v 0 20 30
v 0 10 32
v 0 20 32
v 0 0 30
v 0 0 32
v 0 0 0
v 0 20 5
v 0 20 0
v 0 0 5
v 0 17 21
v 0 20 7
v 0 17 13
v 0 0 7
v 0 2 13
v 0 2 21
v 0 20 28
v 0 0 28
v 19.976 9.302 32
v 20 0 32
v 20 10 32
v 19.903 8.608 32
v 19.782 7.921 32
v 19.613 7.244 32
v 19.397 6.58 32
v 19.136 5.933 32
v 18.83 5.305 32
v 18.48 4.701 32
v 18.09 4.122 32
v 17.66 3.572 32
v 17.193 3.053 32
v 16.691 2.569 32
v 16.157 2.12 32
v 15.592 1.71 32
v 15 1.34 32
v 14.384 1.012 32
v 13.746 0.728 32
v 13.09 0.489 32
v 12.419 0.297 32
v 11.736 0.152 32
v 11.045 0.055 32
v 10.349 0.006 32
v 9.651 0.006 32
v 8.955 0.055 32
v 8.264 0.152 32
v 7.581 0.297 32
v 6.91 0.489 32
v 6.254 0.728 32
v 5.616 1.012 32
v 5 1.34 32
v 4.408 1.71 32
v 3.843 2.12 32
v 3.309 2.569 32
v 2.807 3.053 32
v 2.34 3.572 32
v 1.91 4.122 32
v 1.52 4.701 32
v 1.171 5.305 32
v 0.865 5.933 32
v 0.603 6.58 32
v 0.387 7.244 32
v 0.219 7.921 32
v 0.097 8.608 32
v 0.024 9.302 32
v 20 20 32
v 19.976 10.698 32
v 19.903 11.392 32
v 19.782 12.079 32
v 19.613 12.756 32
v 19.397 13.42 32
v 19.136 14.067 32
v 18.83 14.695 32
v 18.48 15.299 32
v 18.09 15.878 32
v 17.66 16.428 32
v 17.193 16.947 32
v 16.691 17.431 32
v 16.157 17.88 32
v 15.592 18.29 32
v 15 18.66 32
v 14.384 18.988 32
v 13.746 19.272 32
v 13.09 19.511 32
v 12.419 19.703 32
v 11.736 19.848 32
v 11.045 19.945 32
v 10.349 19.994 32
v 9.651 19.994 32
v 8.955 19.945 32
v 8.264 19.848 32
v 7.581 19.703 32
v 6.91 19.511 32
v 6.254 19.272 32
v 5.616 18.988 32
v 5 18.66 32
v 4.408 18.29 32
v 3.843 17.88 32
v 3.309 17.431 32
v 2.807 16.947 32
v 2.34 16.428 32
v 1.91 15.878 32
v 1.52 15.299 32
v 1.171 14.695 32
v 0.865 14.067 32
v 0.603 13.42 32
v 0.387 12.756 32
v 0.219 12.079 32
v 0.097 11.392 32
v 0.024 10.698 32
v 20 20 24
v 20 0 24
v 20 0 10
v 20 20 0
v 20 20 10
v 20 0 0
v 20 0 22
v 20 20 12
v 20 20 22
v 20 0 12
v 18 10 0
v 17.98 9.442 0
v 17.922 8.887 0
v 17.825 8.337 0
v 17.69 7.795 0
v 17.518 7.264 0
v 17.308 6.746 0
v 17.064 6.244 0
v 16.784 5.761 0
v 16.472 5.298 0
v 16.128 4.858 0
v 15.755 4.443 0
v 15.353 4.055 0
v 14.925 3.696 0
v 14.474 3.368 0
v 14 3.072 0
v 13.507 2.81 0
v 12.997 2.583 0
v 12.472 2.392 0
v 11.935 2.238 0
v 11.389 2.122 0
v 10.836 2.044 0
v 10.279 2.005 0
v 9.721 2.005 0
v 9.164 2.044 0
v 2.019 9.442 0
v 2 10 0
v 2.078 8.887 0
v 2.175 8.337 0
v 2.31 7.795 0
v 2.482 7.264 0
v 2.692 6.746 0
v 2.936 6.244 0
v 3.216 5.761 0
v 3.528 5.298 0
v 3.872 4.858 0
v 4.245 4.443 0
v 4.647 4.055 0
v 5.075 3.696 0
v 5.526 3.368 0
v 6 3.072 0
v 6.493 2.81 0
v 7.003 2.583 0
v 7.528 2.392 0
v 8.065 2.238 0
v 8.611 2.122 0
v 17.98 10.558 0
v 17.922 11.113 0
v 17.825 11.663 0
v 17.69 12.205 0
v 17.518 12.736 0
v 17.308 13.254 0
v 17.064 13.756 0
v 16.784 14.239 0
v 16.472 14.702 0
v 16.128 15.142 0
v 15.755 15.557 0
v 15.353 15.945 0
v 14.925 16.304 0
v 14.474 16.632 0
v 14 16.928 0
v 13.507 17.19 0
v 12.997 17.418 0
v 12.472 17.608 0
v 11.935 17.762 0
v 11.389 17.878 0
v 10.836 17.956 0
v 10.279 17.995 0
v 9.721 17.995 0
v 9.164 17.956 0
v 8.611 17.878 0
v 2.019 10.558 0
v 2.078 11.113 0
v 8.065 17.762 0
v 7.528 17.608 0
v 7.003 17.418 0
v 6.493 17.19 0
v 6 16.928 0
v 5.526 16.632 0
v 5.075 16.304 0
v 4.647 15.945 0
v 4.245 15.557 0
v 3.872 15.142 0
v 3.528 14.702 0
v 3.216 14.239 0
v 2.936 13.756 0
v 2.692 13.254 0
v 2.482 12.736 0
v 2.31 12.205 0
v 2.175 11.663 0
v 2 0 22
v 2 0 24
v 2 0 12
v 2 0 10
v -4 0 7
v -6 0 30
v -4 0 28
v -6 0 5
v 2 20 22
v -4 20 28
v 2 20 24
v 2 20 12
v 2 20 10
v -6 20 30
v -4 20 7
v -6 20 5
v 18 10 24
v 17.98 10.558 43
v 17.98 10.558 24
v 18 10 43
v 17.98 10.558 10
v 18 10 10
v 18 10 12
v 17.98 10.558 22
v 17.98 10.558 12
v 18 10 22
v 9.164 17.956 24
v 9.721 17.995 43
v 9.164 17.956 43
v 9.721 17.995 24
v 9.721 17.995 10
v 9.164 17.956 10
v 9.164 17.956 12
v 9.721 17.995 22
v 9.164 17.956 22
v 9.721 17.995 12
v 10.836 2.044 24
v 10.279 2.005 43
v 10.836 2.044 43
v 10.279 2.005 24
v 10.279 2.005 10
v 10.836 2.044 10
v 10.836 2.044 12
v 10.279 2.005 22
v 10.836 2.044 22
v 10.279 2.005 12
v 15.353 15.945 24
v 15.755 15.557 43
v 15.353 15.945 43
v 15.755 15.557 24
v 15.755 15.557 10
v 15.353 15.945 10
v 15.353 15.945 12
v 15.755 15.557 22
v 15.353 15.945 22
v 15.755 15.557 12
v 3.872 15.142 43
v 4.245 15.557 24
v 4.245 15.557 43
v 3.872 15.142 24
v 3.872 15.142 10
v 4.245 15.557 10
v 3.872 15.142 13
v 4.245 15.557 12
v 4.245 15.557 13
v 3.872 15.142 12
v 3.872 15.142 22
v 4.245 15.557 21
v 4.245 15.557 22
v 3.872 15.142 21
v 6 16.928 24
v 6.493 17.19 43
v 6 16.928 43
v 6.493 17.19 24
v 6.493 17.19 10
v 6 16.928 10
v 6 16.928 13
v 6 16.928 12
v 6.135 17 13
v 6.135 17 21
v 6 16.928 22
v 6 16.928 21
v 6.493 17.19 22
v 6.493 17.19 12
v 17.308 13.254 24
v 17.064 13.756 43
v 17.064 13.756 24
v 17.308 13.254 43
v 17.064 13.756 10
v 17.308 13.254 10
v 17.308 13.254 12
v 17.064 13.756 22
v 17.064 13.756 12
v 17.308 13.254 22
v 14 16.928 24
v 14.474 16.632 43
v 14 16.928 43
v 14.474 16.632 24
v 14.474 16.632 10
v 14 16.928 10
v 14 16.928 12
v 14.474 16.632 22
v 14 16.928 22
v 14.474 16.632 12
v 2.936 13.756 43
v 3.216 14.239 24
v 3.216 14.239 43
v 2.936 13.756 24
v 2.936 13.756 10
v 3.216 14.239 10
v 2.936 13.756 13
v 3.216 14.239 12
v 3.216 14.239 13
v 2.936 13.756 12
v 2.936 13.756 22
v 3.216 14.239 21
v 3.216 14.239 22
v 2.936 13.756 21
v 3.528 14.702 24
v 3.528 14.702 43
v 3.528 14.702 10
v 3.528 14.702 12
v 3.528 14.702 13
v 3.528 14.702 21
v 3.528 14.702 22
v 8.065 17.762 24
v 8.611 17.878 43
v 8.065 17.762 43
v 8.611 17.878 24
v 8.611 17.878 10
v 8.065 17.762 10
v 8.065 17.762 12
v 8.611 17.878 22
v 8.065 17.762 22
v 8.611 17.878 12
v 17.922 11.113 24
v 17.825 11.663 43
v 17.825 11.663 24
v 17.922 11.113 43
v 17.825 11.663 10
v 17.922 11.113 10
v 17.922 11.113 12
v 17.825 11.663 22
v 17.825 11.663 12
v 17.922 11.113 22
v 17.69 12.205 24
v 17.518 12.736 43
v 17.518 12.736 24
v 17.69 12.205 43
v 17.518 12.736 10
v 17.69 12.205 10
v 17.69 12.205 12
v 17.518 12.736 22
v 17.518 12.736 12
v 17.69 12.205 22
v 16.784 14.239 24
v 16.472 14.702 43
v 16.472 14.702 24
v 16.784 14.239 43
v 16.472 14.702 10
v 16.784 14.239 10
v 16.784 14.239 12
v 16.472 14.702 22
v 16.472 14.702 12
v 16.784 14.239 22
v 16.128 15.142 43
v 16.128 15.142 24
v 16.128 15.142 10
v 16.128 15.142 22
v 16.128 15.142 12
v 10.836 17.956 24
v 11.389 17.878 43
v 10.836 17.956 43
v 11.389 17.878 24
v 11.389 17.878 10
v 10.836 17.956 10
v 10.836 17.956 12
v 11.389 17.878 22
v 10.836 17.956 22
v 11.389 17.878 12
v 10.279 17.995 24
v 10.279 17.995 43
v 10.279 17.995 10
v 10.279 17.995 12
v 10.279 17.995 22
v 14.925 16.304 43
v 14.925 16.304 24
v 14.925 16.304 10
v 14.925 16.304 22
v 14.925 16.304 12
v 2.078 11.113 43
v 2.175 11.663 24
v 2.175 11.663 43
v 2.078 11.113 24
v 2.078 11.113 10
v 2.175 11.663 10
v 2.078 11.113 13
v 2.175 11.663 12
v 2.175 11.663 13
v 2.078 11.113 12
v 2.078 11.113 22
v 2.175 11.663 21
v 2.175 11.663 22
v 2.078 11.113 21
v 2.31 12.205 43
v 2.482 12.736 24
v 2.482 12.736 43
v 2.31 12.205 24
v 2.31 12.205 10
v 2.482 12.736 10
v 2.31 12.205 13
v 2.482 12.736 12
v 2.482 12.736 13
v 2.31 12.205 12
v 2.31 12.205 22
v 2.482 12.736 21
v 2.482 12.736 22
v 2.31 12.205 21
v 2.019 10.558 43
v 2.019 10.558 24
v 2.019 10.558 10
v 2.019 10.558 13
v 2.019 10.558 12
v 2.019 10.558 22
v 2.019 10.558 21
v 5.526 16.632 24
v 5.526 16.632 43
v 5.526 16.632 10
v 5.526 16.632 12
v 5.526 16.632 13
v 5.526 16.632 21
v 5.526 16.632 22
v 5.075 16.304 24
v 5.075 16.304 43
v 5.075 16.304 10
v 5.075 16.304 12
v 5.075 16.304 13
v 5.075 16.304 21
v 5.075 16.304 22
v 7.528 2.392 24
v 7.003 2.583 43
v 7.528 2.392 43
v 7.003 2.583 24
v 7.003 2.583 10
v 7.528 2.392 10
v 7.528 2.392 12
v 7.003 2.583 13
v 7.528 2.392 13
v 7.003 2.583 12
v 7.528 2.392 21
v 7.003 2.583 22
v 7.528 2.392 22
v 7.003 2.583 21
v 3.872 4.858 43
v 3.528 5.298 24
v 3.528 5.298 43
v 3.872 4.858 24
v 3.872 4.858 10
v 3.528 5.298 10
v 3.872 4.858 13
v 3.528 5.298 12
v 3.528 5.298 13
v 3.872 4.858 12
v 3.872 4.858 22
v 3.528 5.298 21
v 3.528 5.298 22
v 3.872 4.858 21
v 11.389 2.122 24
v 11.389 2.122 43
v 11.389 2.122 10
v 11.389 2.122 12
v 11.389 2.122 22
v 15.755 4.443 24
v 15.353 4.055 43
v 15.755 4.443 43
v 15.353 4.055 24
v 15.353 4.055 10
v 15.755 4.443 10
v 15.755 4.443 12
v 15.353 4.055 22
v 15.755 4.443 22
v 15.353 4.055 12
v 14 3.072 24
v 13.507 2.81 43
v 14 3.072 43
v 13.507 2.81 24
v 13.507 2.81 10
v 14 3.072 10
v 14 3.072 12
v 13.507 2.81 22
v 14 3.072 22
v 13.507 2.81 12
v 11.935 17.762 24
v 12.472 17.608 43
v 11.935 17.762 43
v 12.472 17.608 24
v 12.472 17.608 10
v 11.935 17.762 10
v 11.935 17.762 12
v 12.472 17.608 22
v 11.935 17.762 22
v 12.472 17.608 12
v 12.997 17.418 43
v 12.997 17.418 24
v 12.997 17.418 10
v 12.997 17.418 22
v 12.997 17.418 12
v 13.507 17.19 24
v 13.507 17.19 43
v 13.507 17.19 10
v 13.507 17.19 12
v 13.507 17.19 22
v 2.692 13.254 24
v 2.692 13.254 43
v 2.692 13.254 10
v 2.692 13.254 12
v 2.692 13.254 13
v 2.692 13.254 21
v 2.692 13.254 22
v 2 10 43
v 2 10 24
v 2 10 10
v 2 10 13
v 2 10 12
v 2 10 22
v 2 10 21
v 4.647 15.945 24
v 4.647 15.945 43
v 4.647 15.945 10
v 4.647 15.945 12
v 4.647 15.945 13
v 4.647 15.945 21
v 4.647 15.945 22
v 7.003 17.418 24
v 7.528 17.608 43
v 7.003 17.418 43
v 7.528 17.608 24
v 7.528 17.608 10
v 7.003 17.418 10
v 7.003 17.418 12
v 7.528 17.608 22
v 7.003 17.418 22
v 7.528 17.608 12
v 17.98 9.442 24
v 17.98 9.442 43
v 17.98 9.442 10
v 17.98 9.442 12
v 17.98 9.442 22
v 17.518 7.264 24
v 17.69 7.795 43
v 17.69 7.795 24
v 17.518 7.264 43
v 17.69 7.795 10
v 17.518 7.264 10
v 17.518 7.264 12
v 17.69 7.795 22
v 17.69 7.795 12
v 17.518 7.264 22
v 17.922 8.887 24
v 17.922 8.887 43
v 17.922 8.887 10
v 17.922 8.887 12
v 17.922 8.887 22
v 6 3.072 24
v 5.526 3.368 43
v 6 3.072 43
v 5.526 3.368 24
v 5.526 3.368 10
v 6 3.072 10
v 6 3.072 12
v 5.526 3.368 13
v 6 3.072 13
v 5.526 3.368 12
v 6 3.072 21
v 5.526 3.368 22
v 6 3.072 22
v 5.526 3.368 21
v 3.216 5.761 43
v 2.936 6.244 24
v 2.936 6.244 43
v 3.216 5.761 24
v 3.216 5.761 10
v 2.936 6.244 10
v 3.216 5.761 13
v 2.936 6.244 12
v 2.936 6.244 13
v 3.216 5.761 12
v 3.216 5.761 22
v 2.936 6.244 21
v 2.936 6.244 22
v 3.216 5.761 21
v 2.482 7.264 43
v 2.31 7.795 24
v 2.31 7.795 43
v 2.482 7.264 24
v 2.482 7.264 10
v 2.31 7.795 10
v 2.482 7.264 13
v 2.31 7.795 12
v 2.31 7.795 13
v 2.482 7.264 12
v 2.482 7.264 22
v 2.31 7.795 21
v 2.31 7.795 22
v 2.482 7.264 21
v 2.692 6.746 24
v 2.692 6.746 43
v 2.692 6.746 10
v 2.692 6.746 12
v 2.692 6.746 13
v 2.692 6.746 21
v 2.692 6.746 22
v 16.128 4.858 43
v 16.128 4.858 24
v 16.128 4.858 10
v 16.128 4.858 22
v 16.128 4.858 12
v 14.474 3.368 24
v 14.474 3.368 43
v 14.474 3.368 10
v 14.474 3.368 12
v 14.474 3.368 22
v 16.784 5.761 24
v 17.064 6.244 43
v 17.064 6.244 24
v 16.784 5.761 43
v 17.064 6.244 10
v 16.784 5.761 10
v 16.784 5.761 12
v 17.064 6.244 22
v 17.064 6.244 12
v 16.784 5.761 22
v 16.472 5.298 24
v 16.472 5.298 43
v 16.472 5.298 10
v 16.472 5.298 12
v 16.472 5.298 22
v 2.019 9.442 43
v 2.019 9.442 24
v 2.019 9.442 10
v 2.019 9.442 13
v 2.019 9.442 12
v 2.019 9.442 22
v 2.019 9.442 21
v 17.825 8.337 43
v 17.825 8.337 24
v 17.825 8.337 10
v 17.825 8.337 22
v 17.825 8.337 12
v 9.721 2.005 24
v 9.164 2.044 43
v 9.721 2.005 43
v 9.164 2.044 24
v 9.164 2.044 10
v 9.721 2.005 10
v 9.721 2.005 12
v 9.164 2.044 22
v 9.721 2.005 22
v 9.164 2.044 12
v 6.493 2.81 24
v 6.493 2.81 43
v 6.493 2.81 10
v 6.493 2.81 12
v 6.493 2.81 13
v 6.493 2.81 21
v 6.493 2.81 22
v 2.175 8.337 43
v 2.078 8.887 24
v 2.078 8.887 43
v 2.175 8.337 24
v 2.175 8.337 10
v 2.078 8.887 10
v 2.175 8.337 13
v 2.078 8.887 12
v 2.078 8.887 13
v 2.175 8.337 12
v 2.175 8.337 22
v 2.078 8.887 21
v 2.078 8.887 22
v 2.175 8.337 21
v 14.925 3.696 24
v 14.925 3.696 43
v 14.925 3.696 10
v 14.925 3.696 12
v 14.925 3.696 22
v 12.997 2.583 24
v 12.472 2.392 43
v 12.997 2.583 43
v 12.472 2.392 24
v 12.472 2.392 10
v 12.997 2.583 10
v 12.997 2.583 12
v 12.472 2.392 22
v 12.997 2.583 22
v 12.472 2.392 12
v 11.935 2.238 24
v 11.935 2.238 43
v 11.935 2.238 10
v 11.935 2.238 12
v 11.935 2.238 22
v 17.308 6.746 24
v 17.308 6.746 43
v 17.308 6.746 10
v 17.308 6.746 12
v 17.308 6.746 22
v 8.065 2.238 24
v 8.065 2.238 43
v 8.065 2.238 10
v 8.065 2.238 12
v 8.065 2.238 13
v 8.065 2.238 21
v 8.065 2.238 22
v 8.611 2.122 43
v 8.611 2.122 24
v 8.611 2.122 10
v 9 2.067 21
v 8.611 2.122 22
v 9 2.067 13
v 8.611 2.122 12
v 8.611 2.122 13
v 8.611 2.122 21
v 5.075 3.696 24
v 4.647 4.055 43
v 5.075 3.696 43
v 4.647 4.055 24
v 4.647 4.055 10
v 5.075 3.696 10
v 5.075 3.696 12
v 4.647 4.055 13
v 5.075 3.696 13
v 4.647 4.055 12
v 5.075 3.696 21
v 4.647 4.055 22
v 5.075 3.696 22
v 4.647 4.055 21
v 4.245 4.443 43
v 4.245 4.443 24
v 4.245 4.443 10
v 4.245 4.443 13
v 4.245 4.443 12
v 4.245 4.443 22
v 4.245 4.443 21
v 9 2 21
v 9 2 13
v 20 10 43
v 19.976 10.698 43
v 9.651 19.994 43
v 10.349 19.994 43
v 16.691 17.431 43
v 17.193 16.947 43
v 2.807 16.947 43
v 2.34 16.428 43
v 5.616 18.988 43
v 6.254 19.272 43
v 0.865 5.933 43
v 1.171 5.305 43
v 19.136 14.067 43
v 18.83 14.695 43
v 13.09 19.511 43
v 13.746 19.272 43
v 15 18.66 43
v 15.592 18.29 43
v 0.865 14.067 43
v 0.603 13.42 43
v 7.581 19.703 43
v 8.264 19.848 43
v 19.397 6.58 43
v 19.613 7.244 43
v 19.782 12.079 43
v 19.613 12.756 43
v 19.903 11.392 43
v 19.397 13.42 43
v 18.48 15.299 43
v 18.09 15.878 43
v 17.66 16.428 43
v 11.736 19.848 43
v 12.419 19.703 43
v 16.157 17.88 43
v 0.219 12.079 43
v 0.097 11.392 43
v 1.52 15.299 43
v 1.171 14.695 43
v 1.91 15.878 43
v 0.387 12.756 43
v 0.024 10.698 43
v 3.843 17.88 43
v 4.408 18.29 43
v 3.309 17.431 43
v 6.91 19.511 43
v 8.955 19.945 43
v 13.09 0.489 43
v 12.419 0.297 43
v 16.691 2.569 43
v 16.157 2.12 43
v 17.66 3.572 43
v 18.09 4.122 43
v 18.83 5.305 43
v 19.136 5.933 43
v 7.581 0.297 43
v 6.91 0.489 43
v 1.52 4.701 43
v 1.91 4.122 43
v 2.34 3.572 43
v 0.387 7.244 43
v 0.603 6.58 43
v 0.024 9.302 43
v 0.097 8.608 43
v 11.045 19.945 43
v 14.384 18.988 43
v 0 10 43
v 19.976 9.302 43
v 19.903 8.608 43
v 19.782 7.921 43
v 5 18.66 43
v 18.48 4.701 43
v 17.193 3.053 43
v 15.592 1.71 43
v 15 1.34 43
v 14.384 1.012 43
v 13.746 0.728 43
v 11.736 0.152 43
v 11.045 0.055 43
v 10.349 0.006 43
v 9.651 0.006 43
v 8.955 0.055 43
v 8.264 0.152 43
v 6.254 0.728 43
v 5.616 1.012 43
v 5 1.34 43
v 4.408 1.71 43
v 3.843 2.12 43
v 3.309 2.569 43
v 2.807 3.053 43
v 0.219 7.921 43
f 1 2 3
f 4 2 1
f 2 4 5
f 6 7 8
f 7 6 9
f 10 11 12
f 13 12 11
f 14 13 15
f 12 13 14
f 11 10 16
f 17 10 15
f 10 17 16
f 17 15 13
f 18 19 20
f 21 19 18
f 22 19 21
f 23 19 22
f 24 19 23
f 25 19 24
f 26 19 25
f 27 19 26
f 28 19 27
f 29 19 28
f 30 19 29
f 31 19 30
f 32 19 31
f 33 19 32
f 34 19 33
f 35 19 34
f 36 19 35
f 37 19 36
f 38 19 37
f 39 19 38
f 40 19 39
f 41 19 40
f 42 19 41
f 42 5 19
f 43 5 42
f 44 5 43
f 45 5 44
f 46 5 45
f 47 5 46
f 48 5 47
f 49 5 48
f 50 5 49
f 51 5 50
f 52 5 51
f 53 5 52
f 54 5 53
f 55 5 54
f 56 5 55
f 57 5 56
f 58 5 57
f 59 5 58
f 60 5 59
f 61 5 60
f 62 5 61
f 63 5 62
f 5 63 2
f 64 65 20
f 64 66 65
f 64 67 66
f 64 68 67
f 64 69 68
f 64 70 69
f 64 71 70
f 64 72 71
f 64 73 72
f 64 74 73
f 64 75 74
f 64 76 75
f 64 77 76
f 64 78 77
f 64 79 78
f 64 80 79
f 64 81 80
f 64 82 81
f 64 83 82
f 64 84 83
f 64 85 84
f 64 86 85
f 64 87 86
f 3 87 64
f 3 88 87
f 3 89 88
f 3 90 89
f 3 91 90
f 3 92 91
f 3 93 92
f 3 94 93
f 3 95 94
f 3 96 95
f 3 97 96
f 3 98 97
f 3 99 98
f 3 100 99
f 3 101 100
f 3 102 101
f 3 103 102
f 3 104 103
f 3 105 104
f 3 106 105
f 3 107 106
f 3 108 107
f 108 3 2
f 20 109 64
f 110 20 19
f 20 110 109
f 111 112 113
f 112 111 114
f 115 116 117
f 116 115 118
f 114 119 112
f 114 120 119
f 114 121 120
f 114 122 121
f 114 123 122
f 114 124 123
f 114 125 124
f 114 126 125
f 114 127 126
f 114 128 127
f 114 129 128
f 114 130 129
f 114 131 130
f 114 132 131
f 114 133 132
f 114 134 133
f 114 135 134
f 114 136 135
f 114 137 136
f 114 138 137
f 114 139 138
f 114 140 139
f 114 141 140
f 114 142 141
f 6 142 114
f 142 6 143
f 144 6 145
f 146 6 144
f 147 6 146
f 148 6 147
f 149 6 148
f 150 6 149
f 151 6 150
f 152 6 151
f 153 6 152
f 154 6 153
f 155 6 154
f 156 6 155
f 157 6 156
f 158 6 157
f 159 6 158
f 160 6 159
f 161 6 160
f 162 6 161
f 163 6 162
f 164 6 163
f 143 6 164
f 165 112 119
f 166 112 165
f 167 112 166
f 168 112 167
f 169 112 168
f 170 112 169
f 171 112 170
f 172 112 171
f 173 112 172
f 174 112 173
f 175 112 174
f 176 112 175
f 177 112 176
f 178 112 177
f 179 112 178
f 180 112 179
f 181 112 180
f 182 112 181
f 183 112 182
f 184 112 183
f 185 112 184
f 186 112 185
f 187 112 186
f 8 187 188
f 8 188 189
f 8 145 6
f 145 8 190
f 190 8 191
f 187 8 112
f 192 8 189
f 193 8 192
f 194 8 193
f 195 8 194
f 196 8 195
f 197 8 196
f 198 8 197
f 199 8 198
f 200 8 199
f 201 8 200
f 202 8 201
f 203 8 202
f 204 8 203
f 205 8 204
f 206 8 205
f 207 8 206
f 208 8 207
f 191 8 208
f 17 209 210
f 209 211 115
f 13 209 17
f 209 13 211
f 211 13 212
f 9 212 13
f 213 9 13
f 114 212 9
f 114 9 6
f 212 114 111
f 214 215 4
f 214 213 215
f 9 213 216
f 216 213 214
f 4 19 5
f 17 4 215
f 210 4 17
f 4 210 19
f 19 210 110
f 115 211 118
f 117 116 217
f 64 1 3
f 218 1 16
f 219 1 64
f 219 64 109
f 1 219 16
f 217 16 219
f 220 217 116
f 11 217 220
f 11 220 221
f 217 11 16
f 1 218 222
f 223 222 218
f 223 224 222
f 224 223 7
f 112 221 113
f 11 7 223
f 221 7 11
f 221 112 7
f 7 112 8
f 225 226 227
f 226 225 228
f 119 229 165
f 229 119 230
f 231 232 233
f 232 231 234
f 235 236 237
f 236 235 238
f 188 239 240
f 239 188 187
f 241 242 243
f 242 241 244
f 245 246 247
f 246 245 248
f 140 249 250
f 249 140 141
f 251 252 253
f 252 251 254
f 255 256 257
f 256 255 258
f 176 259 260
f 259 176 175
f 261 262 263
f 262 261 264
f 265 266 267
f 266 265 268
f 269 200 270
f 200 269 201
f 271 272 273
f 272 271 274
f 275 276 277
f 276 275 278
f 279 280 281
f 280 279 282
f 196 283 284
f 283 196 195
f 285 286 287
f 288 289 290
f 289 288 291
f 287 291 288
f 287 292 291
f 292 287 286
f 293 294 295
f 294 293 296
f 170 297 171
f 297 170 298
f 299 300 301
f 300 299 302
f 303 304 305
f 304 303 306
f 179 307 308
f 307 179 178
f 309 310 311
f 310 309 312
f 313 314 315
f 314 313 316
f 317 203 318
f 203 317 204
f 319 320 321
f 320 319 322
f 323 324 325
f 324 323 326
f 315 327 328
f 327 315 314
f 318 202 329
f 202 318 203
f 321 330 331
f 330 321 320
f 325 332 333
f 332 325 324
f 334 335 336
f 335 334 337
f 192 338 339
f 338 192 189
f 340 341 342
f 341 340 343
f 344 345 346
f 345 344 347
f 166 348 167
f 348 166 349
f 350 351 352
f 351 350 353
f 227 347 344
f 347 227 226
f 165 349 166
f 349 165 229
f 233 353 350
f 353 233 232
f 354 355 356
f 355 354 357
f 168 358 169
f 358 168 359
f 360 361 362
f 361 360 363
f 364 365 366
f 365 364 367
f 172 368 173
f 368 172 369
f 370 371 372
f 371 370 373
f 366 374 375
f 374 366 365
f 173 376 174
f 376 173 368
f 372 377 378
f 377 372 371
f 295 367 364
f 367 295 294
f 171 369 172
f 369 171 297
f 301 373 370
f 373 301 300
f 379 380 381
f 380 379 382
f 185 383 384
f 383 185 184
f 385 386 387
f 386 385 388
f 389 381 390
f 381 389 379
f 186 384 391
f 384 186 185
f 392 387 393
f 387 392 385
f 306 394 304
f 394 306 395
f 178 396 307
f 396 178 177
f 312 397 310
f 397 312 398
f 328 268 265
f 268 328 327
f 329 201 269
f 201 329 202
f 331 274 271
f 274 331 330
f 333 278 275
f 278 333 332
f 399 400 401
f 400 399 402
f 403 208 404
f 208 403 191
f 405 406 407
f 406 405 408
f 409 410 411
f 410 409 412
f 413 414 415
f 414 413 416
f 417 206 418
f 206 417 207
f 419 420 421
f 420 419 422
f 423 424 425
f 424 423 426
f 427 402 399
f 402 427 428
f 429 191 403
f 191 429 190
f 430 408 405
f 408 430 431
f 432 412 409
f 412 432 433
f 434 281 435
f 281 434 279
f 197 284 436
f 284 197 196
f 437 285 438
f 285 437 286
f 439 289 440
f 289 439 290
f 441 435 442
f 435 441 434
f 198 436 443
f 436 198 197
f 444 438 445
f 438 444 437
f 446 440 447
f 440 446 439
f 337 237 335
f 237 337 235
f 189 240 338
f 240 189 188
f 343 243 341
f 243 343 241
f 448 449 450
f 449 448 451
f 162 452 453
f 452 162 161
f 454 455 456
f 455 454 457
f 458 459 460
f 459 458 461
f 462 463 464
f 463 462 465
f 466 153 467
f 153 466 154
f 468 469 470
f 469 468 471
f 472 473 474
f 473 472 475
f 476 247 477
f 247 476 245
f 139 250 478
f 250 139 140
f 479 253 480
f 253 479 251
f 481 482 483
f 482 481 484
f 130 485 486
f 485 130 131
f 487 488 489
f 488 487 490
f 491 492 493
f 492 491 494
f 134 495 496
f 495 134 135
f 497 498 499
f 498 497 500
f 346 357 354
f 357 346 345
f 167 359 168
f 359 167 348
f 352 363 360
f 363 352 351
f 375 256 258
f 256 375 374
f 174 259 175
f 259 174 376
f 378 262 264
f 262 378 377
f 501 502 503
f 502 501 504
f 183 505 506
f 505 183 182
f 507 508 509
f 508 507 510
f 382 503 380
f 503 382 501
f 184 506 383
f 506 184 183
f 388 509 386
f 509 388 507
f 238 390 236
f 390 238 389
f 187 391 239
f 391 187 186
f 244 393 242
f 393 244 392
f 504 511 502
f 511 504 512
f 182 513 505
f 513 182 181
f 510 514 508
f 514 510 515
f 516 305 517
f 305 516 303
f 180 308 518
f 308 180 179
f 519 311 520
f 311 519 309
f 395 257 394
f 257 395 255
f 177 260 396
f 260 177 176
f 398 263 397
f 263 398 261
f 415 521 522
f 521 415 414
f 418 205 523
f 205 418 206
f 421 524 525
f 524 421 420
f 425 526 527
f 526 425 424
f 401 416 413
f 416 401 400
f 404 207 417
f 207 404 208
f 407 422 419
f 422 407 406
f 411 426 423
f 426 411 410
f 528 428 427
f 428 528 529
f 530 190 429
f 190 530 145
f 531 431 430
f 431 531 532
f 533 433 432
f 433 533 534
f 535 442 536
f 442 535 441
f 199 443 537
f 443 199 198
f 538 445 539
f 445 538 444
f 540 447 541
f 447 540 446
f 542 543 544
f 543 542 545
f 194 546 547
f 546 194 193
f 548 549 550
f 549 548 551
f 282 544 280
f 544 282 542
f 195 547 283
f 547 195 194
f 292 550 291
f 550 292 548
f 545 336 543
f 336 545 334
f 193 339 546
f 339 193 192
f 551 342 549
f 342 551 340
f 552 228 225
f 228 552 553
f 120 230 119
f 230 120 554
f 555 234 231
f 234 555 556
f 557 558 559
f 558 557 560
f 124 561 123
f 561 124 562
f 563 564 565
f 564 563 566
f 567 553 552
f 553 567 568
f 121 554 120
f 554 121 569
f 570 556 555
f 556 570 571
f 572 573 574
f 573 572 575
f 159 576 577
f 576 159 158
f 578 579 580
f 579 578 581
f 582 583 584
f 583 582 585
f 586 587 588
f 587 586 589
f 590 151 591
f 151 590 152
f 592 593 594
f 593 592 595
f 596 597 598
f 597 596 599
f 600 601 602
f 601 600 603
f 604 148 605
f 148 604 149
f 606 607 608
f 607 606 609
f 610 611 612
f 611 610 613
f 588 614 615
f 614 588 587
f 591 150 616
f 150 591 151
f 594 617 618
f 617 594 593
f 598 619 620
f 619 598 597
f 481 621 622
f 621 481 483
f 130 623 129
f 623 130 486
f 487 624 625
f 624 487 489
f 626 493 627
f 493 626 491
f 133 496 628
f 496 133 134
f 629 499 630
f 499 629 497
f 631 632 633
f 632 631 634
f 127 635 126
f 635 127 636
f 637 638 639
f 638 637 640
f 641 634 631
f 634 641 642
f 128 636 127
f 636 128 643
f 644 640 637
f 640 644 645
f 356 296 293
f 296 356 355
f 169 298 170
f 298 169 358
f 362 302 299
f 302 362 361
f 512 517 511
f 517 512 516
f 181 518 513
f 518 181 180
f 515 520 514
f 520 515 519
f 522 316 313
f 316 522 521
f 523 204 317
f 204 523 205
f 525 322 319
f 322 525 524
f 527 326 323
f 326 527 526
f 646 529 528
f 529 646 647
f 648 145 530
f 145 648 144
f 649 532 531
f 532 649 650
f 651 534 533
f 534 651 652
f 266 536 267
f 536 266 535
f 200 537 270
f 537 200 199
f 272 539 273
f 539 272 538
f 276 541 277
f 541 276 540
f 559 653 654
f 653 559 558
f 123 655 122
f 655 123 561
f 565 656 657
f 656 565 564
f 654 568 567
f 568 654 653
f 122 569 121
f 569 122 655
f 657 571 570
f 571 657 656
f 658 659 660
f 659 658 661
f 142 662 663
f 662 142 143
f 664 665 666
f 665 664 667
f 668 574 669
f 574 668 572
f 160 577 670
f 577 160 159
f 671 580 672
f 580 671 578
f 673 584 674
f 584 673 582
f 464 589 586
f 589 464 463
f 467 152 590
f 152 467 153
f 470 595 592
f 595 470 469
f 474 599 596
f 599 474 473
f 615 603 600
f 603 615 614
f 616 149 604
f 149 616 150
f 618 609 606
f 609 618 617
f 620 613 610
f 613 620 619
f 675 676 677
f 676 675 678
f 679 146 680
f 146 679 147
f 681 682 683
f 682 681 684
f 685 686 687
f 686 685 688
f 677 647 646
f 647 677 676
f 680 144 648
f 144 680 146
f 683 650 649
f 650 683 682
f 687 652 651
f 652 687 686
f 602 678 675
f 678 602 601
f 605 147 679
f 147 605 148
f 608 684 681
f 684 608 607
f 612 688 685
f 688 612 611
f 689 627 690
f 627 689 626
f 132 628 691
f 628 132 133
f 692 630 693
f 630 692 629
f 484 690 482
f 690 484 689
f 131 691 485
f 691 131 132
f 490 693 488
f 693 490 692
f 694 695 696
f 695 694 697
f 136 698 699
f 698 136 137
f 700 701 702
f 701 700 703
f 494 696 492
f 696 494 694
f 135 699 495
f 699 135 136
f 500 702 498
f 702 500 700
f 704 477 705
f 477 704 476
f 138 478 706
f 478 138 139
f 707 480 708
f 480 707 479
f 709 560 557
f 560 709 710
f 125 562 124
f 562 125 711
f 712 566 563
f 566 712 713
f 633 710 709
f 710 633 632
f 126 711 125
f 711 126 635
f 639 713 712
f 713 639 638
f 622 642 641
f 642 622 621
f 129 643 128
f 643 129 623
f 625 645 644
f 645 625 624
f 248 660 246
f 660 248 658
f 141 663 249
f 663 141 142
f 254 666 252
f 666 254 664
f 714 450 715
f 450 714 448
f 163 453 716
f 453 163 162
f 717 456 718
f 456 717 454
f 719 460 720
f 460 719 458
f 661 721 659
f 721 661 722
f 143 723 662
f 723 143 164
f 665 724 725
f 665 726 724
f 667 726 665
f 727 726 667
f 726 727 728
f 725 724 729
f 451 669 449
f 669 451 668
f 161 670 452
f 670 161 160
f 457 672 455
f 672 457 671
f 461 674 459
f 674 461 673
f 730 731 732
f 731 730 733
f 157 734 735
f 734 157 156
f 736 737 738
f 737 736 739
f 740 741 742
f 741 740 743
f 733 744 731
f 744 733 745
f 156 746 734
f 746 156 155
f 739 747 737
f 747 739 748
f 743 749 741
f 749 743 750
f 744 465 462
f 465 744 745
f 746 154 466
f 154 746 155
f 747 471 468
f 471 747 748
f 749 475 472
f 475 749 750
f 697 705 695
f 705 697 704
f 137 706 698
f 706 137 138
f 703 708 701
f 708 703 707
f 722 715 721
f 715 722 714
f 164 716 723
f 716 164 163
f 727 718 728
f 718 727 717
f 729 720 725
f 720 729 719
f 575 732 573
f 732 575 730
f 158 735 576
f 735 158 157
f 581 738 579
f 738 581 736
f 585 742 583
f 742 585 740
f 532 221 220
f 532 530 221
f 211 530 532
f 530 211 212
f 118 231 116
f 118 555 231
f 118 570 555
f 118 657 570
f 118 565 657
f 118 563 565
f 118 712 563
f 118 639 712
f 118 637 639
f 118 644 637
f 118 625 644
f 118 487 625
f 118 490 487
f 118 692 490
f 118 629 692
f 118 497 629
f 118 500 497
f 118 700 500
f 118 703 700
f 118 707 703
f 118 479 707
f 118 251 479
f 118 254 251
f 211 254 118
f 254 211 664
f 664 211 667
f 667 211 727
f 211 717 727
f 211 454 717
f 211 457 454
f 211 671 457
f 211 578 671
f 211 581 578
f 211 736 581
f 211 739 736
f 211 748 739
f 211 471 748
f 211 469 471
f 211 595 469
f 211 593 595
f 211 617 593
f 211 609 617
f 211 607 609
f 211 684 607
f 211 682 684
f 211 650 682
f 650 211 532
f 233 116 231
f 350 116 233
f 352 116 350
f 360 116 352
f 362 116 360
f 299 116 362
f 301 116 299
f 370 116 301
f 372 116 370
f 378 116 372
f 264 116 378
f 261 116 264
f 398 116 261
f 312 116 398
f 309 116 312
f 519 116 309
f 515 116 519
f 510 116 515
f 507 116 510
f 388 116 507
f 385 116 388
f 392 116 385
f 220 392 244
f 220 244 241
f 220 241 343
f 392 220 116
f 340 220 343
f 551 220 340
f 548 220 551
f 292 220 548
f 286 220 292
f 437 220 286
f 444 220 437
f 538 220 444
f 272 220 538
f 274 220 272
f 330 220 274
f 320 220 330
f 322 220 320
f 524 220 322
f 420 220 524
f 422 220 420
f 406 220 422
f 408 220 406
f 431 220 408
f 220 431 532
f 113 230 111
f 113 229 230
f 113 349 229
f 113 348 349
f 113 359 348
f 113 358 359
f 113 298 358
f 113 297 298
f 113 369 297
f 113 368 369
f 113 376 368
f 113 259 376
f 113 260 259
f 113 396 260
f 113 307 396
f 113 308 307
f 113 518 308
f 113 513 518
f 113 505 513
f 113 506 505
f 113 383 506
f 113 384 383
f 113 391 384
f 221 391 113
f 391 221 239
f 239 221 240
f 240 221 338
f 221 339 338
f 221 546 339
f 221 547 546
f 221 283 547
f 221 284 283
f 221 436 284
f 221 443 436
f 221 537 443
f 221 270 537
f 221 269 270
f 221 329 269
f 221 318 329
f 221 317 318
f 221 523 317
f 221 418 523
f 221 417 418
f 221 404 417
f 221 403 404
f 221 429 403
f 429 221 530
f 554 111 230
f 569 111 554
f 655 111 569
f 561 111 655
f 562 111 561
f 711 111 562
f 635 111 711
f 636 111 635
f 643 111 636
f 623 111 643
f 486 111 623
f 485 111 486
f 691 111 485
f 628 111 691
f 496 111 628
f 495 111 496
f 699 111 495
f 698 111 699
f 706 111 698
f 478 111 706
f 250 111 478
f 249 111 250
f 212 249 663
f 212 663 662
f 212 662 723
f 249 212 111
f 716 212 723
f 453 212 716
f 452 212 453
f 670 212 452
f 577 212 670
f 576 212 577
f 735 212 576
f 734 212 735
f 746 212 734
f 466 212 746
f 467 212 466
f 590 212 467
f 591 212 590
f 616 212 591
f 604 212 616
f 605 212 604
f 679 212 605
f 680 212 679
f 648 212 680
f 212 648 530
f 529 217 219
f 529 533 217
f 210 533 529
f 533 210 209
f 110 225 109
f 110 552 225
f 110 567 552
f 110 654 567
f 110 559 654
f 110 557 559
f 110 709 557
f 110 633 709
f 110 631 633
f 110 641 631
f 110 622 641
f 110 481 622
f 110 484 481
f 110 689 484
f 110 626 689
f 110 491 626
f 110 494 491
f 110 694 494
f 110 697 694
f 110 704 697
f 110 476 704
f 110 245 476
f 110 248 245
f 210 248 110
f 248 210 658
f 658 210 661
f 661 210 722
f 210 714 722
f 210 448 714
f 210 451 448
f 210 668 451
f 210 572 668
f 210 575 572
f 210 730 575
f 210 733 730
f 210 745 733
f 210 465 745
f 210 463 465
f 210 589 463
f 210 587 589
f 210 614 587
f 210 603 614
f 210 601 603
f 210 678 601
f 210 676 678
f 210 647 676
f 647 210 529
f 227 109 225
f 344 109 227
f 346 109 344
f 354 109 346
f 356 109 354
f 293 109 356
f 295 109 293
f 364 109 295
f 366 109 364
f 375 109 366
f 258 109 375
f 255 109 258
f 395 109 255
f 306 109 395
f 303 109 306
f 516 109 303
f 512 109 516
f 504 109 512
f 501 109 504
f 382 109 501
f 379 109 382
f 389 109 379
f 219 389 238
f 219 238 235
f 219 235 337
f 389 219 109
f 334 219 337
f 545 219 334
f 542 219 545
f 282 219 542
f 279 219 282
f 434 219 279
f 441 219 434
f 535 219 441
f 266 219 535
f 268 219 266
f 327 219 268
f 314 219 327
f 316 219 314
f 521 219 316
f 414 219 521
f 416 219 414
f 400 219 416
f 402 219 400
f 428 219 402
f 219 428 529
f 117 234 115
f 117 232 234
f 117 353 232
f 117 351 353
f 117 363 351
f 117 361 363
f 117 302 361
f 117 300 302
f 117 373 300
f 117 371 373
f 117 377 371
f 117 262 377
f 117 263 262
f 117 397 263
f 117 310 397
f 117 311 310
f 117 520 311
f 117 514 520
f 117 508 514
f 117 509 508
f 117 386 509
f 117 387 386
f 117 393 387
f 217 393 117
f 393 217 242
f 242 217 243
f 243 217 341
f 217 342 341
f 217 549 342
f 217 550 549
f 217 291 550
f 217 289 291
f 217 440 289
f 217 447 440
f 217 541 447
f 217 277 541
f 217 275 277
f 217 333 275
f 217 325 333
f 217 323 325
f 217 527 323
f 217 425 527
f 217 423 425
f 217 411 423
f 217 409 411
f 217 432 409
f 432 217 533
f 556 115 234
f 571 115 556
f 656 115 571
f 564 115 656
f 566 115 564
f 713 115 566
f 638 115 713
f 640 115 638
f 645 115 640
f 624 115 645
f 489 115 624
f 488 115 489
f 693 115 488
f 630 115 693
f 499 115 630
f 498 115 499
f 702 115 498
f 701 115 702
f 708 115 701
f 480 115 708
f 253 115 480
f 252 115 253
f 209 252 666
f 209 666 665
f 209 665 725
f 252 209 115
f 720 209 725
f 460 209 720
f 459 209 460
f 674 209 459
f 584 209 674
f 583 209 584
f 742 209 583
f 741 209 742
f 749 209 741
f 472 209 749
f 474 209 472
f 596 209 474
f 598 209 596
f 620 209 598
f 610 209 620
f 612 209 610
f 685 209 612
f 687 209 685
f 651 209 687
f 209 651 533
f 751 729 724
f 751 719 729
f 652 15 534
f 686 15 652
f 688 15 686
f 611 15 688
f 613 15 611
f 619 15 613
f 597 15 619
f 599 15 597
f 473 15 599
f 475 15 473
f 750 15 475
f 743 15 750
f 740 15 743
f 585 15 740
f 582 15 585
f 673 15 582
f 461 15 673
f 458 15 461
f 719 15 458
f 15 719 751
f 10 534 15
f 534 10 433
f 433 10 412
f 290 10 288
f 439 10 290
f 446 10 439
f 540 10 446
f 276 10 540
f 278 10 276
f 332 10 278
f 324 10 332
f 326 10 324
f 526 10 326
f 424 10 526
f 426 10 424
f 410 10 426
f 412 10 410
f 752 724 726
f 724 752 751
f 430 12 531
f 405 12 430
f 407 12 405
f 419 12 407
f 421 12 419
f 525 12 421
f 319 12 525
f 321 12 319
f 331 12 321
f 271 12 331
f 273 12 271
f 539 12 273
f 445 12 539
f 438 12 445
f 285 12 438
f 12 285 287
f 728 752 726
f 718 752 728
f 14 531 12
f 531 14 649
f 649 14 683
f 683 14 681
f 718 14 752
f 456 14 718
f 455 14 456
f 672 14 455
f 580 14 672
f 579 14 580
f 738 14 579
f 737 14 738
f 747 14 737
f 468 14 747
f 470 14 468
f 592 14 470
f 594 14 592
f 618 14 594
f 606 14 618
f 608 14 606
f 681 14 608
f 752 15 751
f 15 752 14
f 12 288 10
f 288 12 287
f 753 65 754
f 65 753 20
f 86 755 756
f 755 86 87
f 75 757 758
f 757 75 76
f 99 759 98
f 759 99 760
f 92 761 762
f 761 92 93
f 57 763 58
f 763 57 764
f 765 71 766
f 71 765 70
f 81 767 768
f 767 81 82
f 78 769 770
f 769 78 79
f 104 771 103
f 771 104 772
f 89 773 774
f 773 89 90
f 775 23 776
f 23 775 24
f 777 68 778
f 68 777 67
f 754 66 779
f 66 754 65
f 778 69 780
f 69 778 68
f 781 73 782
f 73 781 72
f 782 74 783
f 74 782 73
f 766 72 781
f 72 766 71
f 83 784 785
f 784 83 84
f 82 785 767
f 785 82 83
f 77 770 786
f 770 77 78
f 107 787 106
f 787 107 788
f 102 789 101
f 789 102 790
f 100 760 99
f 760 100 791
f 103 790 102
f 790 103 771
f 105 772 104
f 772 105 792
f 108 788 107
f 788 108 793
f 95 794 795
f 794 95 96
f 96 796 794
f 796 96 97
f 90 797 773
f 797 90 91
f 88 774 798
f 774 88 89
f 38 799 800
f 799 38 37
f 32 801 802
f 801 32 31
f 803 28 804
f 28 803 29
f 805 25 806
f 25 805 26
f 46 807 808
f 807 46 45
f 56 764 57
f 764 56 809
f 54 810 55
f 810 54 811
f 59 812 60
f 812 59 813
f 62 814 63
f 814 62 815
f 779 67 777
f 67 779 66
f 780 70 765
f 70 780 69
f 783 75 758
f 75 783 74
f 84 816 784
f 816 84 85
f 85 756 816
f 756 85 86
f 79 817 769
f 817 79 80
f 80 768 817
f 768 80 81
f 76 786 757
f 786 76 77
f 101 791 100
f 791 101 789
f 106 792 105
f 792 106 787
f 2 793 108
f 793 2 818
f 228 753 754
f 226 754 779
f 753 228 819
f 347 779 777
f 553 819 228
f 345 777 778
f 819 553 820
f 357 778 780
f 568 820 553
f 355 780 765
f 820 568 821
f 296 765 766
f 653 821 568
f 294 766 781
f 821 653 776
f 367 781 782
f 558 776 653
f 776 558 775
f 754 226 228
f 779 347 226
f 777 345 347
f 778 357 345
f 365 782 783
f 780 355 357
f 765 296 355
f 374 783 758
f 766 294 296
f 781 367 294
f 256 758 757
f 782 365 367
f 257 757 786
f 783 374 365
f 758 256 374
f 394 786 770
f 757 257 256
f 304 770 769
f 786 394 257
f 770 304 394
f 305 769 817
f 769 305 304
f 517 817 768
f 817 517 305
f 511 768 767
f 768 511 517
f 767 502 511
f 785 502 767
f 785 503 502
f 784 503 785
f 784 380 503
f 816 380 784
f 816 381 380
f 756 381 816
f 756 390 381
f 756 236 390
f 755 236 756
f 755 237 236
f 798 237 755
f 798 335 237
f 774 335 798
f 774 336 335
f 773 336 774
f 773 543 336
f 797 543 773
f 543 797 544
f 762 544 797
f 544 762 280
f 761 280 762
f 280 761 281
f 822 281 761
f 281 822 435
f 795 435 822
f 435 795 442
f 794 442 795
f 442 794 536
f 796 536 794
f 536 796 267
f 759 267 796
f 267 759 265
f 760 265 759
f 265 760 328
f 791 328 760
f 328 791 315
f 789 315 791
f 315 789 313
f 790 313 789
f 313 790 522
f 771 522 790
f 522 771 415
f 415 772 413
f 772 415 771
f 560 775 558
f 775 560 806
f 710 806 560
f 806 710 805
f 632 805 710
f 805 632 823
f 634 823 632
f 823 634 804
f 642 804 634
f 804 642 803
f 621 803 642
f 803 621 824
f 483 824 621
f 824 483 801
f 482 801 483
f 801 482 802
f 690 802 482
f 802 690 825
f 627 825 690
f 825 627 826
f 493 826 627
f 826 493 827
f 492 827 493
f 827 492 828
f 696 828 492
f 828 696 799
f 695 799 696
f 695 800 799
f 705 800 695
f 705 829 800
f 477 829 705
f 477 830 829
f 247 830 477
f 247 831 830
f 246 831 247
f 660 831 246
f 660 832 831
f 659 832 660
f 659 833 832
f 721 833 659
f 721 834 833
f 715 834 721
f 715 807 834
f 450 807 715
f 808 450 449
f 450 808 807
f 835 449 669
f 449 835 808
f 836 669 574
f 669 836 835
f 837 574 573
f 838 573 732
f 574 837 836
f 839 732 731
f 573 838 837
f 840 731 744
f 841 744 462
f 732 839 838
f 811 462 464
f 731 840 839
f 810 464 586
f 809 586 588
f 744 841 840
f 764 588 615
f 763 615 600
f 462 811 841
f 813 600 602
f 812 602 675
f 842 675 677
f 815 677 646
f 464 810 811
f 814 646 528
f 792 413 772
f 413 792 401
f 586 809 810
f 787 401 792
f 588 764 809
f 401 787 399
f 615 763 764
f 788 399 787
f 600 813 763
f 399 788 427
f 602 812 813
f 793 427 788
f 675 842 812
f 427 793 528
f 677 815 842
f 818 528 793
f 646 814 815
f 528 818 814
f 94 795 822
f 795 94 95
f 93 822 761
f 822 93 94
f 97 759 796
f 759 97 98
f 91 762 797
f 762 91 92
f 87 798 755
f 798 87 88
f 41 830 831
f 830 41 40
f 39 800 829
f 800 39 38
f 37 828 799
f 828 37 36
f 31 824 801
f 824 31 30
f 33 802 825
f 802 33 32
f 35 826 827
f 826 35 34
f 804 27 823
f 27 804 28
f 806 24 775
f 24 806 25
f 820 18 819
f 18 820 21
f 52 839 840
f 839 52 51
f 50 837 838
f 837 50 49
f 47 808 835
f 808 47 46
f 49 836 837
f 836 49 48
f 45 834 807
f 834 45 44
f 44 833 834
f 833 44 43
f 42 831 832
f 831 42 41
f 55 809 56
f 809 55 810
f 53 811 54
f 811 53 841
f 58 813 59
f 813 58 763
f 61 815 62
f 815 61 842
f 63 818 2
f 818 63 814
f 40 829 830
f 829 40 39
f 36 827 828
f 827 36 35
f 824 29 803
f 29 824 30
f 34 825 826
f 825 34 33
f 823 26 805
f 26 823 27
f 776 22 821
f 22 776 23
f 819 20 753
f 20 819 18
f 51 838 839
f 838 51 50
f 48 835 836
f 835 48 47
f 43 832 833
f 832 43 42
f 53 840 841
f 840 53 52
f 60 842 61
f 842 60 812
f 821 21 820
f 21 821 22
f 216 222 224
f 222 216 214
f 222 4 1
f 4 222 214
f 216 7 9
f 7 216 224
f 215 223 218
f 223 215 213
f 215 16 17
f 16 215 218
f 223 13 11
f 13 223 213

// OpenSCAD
$fn = 90;

difference(){
    cube([20,20,32]);
    translate([10,10,-2]){
        // cube([16,16,45]);
        cylinder(50,8,8);
    }
    translate([2,-1,10]){
        cube([25,35,2]);
    }
    translate([2,-1,22]){
        cube([25,35,2]);
    }
    translate([-1,2,13]){
        cube([10,15,8]);
    }
}

//color("red") translate([2,-18,31]){
//        cube([25,50,2]);
//}
//
//color("blue") translate([2,-1,11]){
//        cube([25,50,2]);
//}

difference(){
    translate([10,10,31]){
        cylinder(12,10,10);
    }
    translate([10,10,30]){
        cylinder(20,8,8);
    }
}


difference(){
    translate([-6,0,5]){
        cube([6,20,25]);
    }
    translate([-4,-1,7]){
        cube([4,22,21]);
    }
}
